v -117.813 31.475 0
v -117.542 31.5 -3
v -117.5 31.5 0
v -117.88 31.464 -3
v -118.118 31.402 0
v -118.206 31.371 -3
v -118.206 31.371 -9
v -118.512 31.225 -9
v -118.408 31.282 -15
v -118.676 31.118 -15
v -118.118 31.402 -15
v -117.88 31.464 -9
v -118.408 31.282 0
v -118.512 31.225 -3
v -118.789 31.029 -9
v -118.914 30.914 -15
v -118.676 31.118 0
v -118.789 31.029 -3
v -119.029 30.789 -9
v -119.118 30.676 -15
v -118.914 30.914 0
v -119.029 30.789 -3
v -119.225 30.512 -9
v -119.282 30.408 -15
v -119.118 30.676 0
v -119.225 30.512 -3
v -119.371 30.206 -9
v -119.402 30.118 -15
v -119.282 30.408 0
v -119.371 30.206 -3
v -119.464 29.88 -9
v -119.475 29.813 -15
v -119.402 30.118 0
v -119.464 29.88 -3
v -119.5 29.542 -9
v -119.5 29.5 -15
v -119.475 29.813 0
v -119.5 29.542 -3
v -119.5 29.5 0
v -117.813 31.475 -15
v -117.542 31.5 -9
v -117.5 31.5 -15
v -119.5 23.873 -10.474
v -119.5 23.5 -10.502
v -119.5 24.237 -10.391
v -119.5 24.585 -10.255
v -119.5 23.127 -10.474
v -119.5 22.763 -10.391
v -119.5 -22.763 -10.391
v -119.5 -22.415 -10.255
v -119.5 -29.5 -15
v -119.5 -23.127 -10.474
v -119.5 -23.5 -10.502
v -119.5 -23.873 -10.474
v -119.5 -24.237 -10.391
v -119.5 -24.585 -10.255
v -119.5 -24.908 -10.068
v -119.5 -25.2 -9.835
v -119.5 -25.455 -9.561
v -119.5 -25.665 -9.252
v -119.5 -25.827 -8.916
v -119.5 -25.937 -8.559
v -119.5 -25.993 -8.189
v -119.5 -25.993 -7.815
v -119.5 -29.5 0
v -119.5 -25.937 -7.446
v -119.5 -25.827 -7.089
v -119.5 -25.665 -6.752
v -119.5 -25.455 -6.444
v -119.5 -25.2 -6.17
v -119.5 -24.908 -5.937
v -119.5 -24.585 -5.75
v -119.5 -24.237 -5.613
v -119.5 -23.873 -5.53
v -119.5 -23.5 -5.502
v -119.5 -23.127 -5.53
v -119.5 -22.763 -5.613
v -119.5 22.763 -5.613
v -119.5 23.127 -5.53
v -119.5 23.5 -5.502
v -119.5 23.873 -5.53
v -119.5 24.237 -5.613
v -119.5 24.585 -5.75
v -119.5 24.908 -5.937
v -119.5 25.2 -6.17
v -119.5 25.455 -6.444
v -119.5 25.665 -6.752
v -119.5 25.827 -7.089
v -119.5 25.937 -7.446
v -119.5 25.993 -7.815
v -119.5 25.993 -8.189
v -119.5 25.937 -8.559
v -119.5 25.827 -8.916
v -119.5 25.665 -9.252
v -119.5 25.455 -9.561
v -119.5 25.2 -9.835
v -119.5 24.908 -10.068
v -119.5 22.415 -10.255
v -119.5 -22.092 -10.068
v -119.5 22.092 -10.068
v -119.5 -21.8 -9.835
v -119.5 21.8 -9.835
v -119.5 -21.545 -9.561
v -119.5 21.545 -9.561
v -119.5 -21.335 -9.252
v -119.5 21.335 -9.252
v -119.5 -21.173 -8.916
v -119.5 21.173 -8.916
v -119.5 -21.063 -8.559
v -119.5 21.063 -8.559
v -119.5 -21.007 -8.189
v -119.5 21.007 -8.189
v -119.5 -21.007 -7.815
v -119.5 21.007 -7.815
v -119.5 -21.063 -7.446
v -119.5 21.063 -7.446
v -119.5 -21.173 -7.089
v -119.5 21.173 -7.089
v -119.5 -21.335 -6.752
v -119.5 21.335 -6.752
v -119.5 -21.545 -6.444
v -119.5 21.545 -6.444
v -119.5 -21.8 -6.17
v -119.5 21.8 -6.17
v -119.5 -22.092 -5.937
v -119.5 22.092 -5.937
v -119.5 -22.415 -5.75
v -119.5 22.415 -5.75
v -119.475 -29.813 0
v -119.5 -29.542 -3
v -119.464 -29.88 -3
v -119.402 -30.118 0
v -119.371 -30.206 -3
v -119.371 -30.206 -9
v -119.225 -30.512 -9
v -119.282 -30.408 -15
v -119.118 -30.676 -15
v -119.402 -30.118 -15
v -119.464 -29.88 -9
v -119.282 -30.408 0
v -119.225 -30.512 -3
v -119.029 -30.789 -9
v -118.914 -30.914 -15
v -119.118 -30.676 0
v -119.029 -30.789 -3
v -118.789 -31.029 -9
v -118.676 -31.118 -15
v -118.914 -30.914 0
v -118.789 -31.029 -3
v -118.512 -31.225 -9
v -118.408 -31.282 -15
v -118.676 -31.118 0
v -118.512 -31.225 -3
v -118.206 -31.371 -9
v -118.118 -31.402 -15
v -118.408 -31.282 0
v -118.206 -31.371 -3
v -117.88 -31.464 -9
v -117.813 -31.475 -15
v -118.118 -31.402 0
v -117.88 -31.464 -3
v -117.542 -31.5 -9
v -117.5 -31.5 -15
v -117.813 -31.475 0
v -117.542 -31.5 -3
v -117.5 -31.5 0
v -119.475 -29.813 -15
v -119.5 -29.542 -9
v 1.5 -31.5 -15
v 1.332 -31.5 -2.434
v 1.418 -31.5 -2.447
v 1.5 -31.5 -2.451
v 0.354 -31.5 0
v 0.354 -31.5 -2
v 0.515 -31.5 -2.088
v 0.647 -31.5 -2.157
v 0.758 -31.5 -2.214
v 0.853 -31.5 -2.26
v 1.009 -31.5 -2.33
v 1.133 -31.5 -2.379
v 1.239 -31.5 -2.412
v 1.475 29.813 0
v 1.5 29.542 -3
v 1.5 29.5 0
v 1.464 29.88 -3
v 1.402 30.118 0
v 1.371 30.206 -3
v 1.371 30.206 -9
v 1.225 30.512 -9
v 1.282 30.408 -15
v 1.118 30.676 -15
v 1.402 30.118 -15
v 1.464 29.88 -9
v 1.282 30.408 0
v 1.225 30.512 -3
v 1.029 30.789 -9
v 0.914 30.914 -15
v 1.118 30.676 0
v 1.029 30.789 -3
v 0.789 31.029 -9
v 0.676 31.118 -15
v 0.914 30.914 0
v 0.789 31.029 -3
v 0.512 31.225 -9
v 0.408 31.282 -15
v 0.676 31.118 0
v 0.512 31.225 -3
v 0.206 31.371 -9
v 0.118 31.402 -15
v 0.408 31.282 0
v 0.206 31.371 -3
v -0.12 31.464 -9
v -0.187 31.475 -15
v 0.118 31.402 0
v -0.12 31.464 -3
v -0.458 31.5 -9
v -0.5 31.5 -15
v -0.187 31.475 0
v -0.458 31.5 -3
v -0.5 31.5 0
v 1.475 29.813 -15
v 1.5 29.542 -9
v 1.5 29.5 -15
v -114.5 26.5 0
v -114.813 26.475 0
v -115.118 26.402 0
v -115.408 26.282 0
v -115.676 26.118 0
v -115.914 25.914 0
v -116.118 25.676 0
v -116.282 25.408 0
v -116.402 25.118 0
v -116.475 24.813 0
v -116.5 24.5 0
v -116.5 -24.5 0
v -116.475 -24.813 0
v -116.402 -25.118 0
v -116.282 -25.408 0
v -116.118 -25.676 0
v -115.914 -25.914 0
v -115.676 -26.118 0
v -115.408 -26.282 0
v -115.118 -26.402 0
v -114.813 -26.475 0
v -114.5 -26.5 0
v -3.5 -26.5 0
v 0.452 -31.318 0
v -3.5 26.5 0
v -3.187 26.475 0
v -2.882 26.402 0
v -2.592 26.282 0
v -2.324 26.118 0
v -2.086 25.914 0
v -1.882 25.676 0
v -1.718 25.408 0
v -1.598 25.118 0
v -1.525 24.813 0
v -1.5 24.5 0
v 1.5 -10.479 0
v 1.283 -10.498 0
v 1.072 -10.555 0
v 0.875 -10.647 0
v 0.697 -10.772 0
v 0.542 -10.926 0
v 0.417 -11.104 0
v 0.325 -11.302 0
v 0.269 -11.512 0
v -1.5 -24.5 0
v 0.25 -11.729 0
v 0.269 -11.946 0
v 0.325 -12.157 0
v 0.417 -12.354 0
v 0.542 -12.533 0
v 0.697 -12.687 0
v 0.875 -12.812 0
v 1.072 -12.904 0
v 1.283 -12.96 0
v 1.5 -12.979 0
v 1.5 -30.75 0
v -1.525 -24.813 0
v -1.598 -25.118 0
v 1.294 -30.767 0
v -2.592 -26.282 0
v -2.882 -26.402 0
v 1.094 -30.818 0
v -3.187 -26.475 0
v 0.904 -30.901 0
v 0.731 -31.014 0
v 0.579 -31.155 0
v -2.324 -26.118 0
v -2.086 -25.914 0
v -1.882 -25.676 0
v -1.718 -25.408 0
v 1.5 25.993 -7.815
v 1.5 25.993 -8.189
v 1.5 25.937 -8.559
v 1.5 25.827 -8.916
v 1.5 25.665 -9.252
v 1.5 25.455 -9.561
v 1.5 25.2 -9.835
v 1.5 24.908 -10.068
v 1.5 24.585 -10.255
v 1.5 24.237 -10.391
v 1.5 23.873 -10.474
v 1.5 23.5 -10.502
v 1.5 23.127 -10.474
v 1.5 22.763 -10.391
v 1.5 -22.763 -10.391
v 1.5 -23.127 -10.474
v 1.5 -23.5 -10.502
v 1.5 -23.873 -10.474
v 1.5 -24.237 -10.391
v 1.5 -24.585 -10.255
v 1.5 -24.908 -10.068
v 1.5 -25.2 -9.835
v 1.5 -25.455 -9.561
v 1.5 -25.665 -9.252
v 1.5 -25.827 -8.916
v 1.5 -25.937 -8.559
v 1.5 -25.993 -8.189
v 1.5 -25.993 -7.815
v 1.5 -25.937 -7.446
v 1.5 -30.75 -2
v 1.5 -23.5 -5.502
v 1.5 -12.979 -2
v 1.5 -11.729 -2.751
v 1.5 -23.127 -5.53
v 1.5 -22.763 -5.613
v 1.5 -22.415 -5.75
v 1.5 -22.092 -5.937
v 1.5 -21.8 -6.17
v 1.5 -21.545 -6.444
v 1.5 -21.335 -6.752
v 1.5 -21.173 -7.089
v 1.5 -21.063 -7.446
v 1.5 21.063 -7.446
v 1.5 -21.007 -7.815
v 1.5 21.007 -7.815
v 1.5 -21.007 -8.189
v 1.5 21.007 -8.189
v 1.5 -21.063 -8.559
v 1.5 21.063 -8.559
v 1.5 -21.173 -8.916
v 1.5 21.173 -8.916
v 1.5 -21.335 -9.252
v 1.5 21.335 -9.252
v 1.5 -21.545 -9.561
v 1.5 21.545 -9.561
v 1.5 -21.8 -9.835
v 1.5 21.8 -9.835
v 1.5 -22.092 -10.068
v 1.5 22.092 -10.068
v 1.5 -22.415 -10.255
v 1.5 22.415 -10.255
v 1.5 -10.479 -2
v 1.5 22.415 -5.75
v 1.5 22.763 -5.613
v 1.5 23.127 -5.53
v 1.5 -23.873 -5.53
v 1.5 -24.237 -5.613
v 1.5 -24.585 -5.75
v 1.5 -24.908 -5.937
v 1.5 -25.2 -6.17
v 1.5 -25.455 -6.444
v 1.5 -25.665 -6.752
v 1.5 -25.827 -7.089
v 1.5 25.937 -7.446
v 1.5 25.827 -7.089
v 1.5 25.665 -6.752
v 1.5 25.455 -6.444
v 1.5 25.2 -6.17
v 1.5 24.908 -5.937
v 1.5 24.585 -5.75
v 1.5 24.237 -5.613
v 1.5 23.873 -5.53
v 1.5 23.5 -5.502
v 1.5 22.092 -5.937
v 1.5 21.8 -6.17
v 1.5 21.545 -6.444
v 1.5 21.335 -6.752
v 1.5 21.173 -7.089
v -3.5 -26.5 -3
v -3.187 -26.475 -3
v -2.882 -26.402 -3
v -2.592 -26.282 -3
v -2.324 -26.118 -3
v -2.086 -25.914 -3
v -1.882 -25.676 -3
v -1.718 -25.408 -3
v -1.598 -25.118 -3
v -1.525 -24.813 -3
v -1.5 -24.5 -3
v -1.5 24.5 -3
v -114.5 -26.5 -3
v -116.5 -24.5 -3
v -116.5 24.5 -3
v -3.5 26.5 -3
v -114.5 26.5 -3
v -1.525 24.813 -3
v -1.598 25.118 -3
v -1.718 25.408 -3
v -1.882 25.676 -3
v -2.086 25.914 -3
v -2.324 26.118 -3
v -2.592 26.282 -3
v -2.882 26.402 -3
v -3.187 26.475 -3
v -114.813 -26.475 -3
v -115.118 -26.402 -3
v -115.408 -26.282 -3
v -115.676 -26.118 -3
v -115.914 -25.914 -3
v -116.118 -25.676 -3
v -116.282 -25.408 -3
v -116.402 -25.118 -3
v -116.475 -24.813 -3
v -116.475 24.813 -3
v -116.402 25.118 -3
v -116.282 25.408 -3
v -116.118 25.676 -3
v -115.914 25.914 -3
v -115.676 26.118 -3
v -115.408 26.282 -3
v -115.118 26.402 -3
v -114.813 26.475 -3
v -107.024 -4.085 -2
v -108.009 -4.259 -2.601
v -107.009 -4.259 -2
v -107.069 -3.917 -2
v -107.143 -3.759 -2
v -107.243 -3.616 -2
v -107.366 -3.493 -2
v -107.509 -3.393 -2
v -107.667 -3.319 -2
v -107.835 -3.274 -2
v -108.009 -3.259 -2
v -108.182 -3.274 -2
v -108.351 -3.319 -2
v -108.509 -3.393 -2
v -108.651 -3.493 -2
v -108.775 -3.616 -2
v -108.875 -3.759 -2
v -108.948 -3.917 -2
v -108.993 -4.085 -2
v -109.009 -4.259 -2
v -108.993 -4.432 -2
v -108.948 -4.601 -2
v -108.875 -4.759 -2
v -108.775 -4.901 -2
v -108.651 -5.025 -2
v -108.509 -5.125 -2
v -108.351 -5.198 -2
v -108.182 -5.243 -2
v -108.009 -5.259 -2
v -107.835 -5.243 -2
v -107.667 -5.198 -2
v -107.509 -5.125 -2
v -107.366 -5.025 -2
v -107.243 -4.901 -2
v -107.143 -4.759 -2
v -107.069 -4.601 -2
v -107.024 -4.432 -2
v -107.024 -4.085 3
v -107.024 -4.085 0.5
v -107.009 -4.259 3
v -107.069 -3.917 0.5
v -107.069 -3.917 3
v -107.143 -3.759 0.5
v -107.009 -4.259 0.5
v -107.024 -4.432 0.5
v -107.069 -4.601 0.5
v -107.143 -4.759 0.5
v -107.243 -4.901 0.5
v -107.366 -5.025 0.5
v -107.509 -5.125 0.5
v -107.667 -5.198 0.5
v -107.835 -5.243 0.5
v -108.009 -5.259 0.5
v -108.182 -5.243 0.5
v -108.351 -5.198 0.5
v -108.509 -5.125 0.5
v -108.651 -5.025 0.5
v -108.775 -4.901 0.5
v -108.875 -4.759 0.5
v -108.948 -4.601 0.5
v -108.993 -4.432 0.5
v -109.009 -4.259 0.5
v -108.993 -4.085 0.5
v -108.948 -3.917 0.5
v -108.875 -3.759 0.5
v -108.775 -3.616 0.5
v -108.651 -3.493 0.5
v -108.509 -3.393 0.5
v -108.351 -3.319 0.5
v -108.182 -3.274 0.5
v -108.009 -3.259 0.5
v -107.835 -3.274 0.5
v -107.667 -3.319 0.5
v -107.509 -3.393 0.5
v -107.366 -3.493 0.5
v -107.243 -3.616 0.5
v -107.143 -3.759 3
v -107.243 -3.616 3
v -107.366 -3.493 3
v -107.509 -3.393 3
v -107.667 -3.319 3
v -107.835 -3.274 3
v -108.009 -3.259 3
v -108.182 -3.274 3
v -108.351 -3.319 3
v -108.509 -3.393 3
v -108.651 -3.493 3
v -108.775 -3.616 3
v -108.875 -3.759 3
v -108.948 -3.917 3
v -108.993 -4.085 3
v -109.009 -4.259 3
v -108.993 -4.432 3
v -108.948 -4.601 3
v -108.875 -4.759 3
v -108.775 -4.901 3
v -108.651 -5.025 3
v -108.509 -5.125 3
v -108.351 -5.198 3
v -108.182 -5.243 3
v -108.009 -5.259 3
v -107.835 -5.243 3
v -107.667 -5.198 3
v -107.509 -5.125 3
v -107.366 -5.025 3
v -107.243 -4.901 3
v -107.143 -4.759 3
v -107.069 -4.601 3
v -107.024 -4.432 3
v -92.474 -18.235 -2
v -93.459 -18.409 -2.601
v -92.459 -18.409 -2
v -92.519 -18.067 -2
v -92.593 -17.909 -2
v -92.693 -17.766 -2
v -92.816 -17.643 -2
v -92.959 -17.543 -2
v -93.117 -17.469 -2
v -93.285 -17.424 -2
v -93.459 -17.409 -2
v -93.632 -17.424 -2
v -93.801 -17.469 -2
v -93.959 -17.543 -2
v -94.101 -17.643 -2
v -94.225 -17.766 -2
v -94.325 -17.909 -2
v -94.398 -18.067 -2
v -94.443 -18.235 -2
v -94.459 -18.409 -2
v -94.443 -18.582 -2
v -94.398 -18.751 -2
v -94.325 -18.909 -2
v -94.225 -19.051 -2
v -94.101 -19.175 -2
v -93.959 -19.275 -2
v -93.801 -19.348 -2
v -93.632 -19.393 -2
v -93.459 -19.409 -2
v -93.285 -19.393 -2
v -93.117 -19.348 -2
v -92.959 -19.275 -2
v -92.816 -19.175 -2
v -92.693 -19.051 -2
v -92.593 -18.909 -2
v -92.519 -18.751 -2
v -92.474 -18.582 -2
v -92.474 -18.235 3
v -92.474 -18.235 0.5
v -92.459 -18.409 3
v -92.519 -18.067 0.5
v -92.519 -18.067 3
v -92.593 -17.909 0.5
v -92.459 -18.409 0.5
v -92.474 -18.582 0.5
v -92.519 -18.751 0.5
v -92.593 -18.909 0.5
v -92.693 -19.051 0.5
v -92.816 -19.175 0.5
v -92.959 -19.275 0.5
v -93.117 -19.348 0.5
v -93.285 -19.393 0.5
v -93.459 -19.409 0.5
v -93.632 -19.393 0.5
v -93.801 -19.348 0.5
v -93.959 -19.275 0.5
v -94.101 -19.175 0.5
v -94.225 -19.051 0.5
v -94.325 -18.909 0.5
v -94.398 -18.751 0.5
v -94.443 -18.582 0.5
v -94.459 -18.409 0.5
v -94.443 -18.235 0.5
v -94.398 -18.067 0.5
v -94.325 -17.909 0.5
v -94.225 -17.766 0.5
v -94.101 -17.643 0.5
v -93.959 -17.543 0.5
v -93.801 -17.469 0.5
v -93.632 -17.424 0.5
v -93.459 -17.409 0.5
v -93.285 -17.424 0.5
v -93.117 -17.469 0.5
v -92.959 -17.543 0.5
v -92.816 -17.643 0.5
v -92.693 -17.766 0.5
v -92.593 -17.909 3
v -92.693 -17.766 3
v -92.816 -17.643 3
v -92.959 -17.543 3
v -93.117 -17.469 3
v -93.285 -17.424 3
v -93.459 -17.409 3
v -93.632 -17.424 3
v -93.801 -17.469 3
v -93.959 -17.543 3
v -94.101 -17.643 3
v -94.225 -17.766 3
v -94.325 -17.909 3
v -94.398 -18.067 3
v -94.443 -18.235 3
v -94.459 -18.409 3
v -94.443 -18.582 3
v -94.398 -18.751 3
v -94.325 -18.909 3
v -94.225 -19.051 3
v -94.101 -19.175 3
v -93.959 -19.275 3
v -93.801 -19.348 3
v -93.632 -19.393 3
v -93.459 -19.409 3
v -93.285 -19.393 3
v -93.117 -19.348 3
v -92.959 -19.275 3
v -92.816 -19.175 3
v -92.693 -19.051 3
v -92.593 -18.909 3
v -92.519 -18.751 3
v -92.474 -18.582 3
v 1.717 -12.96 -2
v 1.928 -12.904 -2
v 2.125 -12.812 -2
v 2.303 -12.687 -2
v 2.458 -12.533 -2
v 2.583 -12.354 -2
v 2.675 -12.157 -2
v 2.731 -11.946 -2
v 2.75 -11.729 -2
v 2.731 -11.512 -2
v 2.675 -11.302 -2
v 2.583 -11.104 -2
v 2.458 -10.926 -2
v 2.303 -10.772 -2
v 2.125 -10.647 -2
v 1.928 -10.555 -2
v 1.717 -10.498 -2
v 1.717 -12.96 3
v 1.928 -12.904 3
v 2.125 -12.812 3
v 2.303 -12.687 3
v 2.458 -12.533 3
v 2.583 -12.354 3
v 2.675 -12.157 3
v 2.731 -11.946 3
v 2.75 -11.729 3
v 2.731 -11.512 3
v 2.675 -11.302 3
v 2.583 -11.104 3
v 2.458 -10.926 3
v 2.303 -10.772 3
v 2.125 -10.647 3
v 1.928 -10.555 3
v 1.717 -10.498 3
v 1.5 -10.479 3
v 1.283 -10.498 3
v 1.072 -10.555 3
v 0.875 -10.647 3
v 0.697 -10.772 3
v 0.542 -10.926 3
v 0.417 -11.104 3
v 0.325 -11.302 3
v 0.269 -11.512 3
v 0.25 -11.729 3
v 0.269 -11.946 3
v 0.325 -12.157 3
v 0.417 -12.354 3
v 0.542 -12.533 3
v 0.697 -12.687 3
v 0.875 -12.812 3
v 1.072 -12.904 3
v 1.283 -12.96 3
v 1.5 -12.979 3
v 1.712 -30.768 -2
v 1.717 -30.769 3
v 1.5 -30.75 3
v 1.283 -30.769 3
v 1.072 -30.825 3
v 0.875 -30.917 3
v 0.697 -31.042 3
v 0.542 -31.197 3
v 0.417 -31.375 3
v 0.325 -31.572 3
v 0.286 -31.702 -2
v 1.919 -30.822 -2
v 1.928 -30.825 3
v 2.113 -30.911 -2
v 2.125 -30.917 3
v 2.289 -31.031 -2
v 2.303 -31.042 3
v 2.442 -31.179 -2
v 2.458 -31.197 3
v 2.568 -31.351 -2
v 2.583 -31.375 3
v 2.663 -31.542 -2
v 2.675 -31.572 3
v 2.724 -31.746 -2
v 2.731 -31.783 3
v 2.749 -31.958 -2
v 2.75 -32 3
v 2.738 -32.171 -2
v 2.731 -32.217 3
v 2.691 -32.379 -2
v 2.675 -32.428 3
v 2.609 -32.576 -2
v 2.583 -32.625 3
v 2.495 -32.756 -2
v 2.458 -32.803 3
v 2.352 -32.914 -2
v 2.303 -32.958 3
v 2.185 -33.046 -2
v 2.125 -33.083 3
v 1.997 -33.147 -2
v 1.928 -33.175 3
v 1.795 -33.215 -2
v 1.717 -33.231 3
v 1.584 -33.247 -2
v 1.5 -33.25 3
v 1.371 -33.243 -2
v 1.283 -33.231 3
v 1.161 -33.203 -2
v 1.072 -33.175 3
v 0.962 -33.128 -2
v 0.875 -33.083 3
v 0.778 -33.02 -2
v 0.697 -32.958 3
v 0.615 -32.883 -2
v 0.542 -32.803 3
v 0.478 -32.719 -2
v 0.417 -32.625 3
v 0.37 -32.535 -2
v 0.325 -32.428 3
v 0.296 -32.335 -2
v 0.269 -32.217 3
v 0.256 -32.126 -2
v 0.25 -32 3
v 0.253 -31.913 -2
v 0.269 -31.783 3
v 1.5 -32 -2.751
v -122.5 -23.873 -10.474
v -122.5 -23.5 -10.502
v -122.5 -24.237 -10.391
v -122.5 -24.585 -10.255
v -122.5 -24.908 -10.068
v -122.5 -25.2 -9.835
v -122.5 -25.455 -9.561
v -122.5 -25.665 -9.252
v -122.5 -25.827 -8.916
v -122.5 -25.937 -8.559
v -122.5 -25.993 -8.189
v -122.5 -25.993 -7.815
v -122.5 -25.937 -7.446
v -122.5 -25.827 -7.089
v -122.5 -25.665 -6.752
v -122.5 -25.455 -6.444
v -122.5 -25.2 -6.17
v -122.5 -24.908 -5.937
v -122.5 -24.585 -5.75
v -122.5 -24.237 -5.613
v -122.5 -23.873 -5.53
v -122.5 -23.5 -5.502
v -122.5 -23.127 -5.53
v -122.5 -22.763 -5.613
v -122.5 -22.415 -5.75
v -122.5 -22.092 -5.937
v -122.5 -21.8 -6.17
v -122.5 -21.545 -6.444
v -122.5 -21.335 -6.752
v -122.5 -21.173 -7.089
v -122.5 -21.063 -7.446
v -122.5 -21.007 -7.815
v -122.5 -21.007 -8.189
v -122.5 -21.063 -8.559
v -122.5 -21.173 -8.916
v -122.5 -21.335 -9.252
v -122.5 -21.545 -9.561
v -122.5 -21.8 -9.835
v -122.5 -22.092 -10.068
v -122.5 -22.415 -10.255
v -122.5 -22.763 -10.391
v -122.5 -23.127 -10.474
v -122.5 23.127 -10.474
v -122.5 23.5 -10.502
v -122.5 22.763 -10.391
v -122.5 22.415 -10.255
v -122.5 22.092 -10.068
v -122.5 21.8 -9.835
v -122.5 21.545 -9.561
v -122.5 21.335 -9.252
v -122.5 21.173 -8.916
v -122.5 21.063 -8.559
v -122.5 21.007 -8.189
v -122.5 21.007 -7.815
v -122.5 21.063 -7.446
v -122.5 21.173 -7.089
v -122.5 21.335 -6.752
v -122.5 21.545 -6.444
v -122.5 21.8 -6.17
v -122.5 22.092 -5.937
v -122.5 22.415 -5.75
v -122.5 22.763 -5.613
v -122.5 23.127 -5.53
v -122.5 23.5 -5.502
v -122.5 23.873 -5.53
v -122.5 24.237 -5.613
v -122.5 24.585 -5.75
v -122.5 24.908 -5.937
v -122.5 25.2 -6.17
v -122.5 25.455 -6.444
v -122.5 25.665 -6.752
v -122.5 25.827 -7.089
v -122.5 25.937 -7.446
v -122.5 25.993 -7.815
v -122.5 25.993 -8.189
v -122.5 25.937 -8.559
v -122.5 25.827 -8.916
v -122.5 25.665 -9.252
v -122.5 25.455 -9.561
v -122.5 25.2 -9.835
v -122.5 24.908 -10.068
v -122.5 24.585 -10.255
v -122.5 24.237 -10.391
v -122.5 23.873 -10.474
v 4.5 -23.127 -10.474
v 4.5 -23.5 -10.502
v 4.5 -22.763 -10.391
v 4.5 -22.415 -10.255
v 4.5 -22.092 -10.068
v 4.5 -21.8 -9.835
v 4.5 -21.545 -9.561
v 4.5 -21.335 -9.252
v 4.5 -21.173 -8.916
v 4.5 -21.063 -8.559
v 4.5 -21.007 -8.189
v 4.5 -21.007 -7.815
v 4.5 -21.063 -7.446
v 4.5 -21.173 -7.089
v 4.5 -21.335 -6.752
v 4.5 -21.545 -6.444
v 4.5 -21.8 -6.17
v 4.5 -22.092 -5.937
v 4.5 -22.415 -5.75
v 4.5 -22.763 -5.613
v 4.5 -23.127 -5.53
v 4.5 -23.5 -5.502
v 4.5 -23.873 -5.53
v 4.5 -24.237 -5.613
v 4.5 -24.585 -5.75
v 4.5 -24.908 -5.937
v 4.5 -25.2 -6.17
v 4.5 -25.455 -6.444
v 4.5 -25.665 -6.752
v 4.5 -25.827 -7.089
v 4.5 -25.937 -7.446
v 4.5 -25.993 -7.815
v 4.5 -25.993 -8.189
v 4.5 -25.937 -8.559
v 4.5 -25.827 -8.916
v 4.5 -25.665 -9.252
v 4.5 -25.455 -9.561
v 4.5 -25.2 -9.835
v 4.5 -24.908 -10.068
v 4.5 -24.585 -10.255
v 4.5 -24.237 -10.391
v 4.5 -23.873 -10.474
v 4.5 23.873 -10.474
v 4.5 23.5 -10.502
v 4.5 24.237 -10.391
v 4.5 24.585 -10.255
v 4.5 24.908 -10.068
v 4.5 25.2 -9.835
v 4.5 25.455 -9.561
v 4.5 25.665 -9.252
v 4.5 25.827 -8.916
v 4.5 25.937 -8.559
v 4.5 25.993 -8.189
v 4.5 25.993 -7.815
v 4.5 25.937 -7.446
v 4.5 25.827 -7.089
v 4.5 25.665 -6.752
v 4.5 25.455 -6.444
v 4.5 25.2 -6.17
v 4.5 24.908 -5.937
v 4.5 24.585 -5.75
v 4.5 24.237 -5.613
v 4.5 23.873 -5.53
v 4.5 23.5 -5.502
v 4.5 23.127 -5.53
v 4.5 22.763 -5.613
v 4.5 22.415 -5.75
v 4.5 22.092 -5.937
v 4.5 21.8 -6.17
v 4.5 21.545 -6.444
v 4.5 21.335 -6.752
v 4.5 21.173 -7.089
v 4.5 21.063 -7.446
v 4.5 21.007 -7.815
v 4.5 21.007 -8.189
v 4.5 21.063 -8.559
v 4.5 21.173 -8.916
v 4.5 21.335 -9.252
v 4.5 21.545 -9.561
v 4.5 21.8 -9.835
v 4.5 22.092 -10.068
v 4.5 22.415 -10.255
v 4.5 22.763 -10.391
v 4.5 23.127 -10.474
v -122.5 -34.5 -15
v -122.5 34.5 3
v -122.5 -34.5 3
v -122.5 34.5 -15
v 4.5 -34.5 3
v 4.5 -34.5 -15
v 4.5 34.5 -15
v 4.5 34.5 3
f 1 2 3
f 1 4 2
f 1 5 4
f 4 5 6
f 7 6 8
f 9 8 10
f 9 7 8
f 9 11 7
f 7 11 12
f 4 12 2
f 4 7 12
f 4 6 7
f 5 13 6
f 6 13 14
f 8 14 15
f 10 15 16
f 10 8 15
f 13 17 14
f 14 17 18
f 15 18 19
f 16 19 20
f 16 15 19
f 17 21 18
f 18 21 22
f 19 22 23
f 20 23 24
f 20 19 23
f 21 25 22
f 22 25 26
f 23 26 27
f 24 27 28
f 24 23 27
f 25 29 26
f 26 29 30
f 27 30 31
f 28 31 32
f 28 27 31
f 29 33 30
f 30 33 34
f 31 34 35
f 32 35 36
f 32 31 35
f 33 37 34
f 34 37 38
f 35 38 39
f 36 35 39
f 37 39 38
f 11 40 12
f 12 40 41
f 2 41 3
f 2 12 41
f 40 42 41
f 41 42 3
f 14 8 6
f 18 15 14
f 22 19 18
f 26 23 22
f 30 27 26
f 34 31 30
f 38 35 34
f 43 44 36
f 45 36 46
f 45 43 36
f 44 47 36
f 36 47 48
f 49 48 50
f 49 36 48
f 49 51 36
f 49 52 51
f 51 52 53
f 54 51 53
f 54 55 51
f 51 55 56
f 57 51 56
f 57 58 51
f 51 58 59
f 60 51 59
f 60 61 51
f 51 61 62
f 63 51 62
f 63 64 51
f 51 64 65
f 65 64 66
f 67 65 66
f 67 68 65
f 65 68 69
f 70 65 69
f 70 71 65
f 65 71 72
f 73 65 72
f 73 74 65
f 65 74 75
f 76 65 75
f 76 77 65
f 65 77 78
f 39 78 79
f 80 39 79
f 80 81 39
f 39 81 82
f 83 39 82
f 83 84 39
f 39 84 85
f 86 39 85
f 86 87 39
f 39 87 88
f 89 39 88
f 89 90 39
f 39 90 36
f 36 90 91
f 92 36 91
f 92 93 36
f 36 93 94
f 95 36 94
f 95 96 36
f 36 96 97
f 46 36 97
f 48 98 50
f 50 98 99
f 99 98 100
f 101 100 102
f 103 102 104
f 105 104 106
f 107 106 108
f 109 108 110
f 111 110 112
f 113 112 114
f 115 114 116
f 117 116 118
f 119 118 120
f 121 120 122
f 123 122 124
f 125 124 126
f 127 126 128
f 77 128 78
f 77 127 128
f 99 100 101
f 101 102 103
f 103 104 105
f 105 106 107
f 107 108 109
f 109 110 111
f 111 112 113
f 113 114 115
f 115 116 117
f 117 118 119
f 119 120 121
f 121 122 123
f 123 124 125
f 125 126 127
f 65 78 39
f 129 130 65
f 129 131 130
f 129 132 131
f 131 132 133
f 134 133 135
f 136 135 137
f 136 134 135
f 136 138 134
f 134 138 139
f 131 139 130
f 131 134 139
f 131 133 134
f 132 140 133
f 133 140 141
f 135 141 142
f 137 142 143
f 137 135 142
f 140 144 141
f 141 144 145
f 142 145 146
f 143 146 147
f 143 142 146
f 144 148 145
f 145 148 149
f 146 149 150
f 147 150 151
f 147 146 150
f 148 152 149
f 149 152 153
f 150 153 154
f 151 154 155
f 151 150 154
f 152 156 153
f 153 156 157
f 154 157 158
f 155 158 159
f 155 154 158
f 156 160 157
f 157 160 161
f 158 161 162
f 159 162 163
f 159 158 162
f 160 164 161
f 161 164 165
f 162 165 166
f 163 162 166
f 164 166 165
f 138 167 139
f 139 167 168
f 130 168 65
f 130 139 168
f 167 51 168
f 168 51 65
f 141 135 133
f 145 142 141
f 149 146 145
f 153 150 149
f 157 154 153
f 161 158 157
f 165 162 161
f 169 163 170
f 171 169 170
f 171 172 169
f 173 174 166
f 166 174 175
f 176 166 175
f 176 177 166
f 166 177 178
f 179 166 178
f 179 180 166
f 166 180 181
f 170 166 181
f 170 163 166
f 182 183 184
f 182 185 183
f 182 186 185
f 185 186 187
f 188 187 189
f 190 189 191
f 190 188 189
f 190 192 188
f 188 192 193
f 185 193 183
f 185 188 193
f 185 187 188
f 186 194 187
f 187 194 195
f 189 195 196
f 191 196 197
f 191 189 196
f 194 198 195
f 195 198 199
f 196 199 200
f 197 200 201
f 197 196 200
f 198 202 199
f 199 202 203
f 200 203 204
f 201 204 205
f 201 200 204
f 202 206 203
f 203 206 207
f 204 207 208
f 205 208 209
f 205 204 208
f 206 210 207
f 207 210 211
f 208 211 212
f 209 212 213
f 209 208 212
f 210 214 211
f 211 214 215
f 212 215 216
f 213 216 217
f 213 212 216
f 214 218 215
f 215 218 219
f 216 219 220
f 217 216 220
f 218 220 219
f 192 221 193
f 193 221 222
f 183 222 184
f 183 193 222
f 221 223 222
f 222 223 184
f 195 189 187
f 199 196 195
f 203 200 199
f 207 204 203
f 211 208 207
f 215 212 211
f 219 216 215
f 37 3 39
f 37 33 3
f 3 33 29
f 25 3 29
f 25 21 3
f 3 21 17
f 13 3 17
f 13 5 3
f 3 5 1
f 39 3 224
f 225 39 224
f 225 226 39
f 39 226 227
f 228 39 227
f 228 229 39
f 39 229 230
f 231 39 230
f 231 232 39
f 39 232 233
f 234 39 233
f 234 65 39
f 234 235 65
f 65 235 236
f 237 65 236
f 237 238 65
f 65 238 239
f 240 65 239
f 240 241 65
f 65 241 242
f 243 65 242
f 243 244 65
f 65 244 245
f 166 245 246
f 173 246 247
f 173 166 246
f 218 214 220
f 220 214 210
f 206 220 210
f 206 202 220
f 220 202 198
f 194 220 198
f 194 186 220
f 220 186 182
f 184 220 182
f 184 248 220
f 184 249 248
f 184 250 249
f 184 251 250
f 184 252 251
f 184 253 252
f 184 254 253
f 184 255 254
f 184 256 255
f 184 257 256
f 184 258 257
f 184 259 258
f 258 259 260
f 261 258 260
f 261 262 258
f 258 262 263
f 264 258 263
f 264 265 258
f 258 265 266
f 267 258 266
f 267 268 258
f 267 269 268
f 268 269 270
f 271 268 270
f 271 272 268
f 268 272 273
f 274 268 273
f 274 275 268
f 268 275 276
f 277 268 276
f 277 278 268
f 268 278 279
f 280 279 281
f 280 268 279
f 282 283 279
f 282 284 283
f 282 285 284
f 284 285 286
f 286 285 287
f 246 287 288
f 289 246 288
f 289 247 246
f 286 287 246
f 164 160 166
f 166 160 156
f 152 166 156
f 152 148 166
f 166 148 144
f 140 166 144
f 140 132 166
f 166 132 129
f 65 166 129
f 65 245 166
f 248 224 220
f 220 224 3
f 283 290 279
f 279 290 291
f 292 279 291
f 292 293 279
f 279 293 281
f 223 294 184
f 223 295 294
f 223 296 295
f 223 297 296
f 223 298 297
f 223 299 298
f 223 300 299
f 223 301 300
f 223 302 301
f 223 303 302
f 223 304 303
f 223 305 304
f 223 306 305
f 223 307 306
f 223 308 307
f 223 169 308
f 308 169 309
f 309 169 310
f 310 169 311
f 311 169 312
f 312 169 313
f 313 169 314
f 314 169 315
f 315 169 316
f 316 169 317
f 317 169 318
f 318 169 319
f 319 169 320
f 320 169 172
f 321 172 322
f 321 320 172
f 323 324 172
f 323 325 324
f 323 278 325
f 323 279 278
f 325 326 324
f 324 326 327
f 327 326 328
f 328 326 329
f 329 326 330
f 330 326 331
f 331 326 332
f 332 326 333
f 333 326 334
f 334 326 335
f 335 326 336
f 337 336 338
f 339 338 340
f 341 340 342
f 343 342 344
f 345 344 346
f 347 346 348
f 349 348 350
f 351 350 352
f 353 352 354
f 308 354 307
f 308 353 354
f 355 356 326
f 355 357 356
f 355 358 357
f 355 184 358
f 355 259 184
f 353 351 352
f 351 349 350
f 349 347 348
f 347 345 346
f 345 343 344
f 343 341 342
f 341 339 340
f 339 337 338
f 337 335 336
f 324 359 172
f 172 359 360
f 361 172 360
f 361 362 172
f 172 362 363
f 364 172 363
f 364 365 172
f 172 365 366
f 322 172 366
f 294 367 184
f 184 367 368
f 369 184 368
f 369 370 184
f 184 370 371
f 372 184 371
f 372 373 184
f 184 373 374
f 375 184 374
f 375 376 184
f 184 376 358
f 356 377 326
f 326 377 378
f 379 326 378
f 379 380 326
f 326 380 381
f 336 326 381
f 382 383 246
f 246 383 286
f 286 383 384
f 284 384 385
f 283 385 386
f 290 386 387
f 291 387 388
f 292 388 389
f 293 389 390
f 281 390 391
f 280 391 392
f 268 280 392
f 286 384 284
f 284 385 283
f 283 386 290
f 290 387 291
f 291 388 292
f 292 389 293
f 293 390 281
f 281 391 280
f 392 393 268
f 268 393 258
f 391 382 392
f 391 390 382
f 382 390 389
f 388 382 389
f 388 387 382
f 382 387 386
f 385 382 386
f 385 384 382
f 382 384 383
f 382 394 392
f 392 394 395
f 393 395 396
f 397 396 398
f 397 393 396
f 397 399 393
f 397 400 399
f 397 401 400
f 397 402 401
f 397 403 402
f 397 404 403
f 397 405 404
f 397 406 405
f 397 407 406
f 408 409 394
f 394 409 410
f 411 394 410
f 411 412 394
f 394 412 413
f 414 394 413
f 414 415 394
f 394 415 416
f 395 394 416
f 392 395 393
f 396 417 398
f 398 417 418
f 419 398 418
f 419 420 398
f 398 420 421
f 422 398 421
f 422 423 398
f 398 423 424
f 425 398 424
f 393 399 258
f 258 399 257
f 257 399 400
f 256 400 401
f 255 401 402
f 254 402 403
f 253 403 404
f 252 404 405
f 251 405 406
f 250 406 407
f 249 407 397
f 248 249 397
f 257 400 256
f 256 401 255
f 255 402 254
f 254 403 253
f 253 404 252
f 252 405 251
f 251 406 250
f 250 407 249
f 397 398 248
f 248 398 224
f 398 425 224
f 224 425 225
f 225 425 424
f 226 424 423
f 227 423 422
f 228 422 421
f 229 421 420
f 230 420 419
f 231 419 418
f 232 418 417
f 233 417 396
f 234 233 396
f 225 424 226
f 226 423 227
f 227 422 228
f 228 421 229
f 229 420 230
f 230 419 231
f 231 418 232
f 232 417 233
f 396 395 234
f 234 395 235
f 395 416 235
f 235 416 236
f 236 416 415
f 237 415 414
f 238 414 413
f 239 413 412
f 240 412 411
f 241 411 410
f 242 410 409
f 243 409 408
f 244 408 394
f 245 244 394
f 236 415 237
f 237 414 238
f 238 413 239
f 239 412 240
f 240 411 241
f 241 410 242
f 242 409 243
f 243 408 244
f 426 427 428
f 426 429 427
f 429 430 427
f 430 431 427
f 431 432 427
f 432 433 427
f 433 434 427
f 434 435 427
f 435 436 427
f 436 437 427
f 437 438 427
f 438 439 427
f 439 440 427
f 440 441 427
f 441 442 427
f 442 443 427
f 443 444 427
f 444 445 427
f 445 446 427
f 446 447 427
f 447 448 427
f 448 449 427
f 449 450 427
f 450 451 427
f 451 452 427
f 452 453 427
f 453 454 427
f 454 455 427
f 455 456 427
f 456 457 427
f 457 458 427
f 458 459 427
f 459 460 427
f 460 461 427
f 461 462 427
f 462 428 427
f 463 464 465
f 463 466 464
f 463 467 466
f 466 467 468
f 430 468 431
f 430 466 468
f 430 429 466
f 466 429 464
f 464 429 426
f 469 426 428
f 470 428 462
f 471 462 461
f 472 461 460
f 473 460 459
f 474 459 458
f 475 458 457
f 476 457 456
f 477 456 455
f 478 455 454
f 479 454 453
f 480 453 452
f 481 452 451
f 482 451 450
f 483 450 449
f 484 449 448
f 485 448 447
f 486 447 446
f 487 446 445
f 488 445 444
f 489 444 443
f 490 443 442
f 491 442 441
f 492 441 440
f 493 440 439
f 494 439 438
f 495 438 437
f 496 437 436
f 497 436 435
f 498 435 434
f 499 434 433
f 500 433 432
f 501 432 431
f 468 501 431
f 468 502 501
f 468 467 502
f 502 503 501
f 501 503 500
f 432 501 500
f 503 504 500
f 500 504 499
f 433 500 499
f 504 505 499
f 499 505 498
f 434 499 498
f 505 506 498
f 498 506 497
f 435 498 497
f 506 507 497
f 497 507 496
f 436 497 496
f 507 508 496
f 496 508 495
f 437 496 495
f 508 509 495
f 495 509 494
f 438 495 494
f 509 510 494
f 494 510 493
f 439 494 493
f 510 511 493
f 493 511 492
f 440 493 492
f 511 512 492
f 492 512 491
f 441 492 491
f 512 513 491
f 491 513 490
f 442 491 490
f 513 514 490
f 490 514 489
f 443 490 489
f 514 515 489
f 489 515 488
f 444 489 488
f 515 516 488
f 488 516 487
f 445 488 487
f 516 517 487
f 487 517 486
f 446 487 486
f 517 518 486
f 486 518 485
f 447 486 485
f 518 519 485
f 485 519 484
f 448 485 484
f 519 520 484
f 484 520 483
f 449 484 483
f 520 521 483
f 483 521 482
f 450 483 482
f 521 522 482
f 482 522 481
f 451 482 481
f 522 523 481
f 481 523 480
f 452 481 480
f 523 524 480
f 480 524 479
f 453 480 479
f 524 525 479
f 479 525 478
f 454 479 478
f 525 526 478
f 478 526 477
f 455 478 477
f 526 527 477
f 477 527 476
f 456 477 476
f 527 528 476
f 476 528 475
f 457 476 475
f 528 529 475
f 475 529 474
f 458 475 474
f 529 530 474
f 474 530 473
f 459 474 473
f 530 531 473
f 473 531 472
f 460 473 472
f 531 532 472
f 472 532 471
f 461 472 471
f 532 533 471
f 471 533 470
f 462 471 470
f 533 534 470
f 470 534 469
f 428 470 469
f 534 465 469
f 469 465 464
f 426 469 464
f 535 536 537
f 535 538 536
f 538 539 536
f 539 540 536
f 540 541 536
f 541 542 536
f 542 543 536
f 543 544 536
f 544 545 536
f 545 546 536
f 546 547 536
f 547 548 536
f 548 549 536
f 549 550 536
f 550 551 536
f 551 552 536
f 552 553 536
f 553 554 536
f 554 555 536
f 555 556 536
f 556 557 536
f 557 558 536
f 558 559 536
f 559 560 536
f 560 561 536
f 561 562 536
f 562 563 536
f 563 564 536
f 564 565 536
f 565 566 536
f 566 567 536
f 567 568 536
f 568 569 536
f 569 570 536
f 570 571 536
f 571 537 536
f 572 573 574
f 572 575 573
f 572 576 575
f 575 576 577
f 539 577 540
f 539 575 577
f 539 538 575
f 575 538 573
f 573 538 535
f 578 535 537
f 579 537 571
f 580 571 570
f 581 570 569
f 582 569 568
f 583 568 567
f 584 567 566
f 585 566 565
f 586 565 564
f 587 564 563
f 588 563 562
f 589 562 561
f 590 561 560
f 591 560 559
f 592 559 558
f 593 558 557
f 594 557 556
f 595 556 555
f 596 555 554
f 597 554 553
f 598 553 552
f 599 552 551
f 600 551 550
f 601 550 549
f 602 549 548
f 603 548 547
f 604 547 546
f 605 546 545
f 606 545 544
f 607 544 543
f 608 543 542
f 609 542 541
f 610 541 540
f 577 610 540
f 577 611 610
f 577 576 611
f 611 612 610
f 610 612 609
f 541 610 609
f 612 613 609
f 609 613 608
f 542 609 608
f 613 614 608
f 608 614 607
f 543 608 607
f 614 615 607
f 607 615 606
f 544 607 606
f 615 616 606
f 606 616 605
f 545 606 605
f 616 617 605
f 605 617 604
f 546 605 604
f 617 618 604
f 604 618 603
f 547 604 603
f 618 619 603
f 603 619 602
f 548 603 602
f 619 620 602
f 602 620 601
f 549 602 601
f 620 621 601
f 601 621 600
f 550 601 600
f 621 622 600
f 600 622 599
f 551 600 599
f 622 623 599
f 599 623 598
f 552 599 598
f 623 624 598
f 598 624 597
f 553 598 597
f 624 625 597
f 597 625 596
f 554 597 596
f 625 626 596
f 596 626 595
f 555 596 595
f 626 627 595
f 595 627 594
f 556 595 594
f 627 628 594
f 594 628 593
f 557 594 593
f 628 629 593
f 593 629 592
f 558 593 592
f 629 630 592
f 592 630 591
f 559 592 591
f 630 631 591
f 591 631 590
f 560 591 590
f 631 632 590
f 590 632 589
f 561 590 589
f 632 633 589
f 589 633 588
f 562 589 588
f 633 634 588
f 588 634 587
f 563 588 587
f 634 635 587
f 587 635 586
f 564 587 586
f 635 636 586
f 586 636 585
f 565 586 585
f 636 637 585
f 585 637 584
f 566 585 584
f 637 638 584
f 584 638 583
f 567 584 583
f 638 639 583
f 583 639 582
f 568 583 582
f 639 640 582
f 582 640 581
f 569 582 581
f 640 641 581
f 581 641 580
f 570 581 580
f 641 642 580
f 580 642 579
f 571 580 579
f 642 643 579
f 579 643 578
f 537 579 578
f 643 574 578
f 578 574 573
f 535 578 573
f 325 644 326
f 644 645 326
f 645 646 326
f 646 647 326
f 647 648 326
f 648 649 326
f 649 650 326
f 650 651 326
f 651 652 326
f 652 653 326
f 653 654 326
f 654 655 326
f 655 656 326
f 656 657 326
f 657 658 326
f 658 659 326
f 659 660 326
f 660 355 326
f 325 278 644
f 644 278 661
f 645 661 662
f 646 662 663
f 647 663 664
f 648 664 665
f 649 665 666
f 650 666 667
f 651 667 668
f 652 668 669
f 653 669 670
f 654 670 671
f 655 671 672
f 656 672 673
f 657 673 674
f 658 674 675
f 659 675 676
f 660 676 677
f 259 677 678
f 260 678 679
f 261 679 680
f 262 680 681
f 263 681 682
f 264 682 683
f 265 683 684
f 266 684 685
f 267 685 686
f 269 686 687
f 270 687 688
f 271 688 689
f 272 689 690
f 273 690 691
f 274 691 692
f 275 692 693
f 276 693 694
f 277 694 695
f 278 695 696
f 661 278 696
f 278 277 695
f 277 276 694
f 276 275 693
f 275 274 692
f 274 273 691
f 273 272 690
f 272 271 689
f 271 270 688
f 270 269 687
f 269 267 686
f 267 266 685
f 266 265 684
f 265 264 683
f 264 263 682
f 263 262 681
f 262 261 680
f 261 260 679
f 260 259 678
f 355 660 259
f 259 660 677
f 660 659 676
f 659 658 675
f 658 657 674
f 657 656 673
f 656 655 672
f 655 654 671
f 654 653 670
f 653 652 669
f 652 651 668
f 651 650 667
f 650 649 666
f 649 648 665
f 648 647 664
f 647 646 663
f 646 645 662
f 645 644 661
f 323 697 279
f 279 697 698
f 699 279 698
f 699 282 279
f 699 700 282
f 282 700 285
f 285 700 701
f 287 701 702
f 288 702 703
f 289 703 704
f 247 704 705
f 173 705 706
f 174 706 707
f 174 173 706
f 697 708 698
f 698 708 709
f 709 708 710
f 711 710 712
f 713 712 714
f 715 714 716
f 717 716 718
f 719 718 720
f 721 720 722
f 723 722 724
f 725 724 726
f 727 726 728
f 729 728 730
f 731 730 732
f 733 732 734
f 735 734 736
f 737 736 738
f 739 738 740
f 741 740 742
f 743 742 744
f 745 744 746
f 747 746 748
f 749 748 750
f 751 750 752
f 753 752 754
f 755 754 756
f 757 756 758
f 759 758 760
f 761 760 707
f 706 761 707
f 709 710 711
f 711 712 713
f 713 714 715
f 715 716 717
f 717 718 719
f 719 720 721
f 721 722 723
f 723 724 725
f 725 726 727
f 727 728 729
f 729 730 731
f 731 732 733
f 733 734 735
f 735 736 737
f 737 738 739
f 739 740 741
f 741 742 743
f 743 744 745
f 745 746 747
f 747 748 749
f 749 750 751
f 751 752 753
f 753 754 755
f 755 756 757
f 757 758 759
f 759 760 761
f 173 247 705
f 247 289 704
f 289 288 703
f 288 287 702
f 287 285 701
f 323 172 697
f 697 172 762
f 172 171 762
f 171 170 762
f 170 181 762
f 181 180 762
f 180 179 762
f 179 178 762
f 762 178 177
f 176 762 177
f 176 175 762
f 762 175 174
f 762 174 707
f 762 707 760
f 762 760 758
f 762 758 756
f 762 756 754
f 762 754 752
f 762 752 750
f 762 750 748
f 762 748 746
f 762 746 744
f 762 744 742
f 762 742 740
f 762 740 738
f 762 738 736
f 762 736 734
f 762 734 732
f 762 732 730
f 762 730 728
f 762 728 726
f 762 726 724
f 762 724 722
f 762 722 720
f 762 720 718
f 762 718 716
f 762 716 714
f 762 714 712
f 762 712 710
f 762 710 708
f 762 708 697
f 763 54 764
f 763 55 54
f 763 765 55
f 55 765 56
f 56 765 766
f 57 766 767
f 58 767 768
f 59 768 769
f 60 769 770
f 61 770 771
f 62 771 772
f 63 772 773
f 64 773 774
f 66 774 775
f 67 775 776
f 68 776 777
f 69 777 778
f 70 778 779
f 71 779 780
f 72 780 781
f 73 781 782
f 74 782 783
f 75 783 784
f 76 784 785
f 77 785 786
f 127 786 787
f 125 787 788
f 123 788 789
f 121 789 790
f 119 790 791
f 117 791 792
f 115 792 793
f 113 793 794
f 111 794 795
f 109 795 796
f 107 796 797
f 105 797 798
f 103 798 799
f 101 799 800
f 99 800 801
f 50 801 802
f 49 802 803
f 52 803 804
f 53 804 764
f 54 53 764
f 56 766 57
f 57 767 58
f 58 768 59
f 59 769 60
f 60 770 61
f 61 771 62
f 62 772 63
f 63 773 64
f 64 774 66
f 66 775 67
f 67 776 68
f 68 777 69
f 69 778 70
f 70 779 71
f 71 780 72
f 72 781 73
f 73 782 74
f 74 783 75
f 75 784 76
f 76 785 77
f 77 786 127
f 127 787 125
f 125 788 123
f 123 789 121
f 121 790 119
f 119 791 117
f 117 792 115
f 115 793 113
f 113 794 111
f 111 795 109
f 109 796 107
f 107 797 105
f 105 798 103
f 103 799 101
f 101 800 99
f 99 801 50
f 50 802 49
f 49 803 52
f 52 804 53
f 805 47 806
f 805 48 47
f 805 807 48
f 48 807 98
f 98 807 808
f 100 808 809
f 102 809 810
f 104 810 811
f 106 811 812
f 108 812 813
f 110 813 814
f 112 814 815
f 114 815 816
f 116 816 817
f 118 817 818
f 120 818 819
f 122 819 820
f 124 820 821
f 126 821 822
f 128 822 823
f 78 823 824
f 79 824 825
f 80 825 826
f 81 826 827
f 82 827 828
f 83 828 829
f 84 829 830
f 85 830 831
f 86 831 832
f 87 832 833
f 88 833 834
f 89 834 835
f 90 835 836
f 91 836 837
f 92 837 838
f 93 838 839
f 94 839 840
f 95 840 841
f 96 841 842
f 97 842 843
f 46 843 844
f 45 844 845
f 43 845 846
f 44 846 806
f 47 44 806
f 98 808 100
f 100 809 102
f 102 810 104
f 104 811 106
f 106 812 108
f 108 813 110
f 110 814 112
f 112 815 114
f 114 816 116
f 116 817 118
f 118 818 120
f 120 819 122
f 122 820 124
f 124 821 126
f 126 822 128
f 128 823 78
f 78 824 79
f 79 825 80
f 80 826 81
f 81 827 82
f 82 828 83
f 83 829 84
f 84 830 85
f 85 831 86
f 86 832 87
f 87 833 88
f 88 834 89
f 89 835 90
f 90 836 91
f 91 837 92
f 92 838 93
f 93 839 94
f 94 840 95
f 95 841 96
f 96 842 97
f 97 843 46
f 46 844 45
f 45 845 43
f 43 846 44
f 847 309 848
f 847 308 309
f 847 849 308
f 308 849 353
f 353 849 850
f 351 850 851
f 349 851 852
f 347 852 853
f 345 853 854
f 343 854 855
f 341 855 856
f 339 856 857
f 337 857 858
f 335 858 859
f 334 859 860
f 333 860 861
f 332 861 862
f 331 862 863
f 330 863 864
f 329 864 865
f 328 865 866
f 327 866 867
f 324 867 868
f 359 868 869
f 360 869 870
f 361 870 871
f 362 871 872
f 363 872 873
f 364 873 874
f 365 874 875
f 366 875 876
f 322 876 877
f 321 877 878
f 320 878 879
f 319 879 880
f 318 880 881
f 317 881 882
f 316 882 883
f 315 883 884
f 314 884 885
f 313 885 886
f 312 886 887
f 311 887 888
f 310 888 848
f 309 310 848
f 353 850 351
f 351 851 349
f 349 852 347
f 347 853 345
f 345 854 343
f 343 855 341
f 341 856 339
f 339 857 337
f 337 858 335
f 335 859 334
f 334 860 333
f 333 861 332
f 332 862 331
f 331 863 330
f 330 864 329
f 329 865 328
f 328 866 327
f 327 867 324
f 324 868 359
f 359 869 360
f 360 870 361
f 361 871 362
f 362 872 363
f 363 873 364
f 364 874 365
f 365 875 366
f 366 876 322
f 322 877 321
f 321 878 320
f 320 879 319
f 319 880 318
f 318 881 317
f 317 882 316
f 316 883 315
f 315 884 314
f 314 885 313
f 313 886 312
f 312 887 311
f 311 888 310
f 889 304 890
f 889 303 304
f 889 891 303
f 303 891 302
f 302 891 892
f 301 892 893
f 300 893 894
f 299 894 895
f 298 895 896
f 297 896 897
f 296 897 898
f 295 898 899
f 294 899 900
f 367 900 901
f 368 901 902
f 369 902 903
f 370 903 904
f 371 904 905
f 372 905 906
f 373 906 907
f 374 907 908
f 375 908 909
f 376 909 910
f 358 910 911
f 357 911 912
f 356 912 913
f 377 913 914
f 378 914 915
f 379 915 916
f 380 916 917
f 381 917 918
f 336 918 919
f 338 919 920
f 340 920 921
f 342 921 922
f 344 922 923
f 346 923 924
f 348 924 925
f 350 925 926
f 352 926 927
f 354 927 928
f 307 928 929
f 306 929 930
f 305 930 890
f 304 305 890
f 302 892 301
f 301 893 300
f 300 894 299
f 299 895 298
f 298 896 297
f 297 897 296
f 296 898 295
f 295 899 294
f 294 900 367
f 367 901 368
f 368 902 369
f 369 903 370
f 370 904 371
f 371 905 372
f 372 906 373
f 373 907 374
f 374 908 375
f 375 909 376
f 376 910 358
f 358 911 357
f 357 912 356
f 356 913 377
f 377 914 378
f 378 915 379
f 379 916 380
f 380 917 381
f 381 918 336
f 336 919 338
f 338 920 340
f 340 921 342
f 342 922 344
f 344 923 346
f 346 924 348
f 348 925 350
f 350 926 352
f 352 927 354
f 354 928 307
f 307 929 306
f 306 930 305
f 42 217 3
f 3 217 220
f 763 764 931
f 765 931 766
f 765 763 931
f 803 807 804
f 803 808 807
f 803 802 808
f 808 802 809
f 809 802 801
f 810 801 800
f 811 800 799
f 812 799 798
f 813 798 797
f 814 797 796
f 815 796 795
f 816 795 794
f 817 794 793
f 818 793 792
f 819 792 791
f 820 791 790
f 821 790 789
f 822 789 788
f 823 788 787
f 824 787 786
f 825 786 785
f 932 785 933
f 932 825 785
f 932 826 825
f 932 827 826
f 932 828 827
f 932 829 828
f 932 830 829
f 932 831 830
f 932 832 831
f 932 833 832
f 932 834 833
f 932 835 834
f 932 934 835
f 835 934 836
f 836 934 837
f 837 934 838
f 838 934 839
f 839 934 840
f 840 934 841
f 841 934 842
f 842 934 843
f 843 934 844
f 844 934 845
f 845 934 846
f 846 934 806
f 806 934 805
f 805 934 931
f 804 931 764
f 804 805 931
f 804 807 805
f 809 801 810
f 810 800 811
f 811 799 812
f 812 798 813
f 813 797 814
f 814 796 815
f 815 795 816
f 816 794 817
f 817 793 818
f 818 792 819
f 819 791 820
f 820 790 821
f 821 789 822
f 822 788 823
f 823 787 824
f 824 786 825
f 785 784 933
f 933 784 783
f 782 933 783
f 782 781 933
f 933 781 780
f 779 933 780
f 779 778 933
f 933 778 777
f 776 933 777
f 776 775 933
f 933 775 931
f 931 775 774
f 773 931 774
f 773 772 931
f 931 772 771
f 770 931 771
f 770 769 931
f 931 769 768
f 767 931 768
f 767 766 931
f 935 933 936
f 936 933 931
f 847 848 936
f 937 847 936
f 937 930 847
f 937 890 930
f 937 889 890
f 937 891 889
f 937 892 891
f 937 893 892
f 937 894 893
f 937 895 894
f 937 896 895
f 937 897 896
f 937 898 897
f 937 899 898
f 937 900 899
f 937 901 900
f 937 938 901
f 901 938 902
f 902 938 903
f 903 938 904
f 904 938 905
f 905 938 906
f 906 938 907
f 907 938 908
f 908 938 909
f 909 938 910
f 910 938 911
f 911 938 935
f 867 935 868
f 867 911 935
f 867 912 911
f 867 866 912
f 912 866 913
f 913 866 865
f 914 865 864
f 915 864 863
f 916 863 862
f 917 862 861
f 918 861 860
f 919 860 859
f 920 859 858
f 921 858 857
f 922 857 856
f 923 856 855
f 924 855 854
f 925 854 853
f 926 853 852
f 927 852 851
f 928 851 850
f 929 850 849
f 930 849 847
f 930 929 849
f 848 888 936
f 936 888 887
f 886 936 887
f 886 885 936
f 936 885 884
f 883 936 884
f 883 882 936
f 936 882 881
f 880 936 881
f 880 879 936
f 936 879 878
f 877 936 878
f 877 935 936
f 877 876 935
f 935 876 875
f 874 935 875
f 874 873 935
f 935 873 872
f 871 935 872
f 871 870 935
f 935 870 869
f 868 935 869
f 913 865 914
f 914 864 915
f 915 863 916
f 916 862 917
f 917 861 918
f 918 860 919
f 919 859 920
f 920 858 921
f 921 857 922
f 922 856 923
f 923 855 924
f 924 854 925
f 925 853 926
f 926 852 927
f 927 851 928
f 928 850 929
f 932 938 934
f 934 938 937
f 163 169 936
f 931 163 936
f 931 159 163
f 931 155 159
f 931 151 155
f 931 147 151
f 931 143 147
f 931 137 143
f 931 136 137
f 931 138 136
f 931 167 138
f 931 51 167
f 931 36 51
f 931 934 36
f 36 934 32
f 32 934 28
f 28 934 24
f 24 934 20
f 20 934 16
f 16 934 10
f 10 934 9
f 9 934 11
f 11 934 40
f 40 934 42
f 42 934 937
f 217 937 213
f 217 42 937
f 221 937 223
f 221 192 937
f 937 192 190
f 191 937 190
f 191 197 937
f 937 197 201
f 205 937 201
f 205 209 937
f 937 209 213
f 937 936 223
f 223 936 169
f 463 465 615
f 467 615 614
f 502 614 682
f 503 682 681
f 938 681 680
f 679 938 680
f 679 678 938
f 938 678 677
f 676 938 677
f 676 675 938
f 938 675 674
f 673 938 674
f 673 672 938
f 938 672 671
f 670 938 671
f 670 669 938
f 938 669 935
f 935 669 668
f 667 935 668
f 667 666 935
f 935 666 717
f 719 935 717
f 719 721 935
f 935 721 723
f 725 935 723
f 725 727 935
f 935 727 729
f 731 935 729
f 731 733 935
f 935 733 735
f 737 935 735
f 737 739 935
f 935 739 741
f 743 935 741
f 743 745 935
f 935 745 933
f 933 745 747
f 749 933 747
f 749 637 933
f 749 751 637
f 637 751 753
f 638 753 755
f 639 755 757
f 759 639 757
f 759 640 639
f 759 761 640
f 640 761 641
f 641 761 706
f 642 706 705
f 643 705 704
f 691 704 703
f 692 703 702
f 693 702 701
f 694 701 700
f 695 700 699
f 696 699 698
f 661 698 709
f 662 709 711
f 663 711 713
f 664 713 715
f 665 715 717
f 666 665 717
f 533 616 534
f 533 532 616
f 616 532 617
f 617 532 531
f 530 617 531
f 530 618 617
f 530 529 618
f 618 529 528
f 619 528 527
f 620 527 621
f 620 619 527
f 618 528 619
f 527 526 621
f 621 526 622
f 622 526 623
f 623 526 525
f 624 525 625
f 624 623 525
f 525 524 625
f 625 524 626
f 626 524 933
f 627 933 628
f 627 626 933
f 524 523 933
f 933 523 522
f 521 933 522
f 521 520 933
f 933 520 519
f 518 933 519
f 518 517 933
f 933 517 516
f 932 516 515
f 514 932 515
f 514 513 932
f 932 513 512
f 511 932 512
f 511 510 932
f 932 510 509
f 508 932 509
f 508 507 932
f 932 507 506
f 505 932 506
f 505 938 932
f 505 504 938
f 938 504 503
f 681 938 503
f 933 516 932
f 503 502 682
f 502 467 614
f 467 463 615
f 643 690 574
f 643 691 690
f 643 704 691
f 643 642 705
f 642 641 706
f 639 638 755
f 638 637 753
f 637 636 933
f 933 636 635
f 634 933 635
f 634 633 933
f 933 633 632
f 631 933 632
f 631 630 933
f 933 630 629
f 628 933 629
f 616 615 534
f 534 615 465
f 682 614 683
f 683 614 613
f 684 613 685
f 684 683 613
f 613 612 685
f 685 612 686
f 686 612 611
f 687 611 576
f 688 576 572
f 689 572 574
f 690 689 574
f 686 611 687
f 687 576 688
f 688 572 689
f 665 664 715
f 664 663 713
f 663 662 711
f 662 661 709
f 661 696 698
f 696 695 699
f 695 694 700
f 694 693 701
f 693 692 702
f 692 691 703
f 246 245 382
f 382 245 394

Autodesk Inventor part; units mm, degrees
ref_plane "YZ Plane" through (0, 0, 0) normal (1, 0, 0) x (0, 1, 0)
ref_plane "XZ Plane" through (0, 0, 0) normal (0, 1, 0) x (-1, 0, 0)
ref_plane "XY Plane" through (0, 0, 0) normal (0, 0, 1) x (1, 0, 0)
sketch "Boceto1" plane through (0, 0, 0) normal (0, 0, 1) x (1, 0, 0)
  line L0 (-116.5, 26.5) -> (-116.5, -26.5) projected
  line L1 (-1.5, 26.5) -> (-1.5, -26.5) projected
  line L2 (-116.5, -26.5) -> (-1.5, -26.5)
  line L3 (-1.5, -26.5) -> (-1.5, 26.5)
  line L4 (-1.5, 26.5) -> (-116.5, 26.5)
  line L5 (-116.5, 26.5) -> (-116.5, -26.5)
  point P0 (0, 0)
extrude "interior" add sketch "Boceto1" against normal blind 3
sketch "Boceto2" plane through (0, 0, 0) normal (0, 0, 1) x (1, 0, 0)
  line L0 (-119.5, -31.5) -> (-119.5, 31.5) projected
  line L1 (1.5, -31.5) -> (1.5, 31.5) projected
  line L2 (-119.5, -31.5) -> (1.5, -31.5)
  line L3 (1.5, -31.5) -> (1.5, 31.5)
  line L4 (1.5, 31.5) -> (-119.5, 31.5)
  line L5 (-119.5, 31.5) -> (-119.5, -31.5)
  point P0 (0, 0)
extrude "superior" add sketch "Boceto2" along normal blind 3
sketch "Boceto3" plane through (0, 0, 3) normal (0, 0, 1) x (1, 0, 0)
  line L0 (-119.5, -31.5) -> (1.5, -31.5)
  line L1 (1.5, -31.5) -> (1.5, 31.5)
  line L2 (1.5, 31.5) -> (-119.5, 31.5)
  line L3 (-119.5, 31.5) -> (-119.5, -31.5)
  line L4 (-122.5, 34.5) -> (4.5, 34.5)
  line L5 (4.5, 34.5) -> (4.5, -34.5)
  line L6 (4.5, -34.5) -> (-122.5, -34.5)
  line L7 (-122.5, -34.5) -> (-122.5, 34.5)
  point P0 (0, 0)
  dimension "d4" = 3
extrude "laterales" add sketch "Boceto3" against normal blind 18
sketch "Boceto4" plane through (4.5, -34.5, 3) normal (1, 0, 0) x (0, 0, -1)
  circle A0 centre (11.0023, 11) radius 3 projected
  circle A1 centre (11.0023, 58) radius 2.5 projected
  point P0 (3, 34.5)
hole "Agujero1" at (4.5, -23.5, -8.0023) at (4.5, 23.5, -8.0023) direction (-1, 0, 0) diameter 5 depth 3
ref_plane "Plano de trabajo1" through (-59, -34.5, 3) normal (1, 0, 0) x (0, 0, -1)
mirror "Simetría1" about plane through (-59, -34.5, 3) normal (1, 0, 0) of "Agujero1"
sketch "Boceto5" plane through (0, 0, 3) normal (0, 0, 1) x (1, 0, 0)
  circle A0 centre (1.5, -32) radius 1.25 projected
  circle A1 centre (1.5, -11.7293) radius 1.25 projected
  point P0 (0, 0)
hole "Agujero2" at (1.5, -11.7293, 3) at (1.5, -32, 3) direction (0, 0, -1) diameter 2.5 depth 5 tip angle 118
sketch "Boceto6" plane through (0, 0, 3) normal (0, 0, 1) x (1, 0, 0)
  circle A0 centre (-108.0086, -4.2586) radius 1 projected
  circle A1 centre (-93.4586, -18.4086) radius 1 projected
  point P0 (0, 0)
hole "Agujero3" at (-108.0086, -4.2586, 3) at (-93.4586, -18.4086, 3) direction (0, 0, -1) diameter 2 depth 5 tip angle 118
fillet "Empalme1" radius 2 7 edges at (-116.5, -26.5, -1.5) (-116.5, 26.5, -1.5) (-1.5, 26.5, -1.5) (-1.5, -26.5, -1.5) (1.5, 31.5, -7.5) (-119.5, -31.5, -7.5) (-119.5, 31.5, -7.5)
properties part number "tapa"
